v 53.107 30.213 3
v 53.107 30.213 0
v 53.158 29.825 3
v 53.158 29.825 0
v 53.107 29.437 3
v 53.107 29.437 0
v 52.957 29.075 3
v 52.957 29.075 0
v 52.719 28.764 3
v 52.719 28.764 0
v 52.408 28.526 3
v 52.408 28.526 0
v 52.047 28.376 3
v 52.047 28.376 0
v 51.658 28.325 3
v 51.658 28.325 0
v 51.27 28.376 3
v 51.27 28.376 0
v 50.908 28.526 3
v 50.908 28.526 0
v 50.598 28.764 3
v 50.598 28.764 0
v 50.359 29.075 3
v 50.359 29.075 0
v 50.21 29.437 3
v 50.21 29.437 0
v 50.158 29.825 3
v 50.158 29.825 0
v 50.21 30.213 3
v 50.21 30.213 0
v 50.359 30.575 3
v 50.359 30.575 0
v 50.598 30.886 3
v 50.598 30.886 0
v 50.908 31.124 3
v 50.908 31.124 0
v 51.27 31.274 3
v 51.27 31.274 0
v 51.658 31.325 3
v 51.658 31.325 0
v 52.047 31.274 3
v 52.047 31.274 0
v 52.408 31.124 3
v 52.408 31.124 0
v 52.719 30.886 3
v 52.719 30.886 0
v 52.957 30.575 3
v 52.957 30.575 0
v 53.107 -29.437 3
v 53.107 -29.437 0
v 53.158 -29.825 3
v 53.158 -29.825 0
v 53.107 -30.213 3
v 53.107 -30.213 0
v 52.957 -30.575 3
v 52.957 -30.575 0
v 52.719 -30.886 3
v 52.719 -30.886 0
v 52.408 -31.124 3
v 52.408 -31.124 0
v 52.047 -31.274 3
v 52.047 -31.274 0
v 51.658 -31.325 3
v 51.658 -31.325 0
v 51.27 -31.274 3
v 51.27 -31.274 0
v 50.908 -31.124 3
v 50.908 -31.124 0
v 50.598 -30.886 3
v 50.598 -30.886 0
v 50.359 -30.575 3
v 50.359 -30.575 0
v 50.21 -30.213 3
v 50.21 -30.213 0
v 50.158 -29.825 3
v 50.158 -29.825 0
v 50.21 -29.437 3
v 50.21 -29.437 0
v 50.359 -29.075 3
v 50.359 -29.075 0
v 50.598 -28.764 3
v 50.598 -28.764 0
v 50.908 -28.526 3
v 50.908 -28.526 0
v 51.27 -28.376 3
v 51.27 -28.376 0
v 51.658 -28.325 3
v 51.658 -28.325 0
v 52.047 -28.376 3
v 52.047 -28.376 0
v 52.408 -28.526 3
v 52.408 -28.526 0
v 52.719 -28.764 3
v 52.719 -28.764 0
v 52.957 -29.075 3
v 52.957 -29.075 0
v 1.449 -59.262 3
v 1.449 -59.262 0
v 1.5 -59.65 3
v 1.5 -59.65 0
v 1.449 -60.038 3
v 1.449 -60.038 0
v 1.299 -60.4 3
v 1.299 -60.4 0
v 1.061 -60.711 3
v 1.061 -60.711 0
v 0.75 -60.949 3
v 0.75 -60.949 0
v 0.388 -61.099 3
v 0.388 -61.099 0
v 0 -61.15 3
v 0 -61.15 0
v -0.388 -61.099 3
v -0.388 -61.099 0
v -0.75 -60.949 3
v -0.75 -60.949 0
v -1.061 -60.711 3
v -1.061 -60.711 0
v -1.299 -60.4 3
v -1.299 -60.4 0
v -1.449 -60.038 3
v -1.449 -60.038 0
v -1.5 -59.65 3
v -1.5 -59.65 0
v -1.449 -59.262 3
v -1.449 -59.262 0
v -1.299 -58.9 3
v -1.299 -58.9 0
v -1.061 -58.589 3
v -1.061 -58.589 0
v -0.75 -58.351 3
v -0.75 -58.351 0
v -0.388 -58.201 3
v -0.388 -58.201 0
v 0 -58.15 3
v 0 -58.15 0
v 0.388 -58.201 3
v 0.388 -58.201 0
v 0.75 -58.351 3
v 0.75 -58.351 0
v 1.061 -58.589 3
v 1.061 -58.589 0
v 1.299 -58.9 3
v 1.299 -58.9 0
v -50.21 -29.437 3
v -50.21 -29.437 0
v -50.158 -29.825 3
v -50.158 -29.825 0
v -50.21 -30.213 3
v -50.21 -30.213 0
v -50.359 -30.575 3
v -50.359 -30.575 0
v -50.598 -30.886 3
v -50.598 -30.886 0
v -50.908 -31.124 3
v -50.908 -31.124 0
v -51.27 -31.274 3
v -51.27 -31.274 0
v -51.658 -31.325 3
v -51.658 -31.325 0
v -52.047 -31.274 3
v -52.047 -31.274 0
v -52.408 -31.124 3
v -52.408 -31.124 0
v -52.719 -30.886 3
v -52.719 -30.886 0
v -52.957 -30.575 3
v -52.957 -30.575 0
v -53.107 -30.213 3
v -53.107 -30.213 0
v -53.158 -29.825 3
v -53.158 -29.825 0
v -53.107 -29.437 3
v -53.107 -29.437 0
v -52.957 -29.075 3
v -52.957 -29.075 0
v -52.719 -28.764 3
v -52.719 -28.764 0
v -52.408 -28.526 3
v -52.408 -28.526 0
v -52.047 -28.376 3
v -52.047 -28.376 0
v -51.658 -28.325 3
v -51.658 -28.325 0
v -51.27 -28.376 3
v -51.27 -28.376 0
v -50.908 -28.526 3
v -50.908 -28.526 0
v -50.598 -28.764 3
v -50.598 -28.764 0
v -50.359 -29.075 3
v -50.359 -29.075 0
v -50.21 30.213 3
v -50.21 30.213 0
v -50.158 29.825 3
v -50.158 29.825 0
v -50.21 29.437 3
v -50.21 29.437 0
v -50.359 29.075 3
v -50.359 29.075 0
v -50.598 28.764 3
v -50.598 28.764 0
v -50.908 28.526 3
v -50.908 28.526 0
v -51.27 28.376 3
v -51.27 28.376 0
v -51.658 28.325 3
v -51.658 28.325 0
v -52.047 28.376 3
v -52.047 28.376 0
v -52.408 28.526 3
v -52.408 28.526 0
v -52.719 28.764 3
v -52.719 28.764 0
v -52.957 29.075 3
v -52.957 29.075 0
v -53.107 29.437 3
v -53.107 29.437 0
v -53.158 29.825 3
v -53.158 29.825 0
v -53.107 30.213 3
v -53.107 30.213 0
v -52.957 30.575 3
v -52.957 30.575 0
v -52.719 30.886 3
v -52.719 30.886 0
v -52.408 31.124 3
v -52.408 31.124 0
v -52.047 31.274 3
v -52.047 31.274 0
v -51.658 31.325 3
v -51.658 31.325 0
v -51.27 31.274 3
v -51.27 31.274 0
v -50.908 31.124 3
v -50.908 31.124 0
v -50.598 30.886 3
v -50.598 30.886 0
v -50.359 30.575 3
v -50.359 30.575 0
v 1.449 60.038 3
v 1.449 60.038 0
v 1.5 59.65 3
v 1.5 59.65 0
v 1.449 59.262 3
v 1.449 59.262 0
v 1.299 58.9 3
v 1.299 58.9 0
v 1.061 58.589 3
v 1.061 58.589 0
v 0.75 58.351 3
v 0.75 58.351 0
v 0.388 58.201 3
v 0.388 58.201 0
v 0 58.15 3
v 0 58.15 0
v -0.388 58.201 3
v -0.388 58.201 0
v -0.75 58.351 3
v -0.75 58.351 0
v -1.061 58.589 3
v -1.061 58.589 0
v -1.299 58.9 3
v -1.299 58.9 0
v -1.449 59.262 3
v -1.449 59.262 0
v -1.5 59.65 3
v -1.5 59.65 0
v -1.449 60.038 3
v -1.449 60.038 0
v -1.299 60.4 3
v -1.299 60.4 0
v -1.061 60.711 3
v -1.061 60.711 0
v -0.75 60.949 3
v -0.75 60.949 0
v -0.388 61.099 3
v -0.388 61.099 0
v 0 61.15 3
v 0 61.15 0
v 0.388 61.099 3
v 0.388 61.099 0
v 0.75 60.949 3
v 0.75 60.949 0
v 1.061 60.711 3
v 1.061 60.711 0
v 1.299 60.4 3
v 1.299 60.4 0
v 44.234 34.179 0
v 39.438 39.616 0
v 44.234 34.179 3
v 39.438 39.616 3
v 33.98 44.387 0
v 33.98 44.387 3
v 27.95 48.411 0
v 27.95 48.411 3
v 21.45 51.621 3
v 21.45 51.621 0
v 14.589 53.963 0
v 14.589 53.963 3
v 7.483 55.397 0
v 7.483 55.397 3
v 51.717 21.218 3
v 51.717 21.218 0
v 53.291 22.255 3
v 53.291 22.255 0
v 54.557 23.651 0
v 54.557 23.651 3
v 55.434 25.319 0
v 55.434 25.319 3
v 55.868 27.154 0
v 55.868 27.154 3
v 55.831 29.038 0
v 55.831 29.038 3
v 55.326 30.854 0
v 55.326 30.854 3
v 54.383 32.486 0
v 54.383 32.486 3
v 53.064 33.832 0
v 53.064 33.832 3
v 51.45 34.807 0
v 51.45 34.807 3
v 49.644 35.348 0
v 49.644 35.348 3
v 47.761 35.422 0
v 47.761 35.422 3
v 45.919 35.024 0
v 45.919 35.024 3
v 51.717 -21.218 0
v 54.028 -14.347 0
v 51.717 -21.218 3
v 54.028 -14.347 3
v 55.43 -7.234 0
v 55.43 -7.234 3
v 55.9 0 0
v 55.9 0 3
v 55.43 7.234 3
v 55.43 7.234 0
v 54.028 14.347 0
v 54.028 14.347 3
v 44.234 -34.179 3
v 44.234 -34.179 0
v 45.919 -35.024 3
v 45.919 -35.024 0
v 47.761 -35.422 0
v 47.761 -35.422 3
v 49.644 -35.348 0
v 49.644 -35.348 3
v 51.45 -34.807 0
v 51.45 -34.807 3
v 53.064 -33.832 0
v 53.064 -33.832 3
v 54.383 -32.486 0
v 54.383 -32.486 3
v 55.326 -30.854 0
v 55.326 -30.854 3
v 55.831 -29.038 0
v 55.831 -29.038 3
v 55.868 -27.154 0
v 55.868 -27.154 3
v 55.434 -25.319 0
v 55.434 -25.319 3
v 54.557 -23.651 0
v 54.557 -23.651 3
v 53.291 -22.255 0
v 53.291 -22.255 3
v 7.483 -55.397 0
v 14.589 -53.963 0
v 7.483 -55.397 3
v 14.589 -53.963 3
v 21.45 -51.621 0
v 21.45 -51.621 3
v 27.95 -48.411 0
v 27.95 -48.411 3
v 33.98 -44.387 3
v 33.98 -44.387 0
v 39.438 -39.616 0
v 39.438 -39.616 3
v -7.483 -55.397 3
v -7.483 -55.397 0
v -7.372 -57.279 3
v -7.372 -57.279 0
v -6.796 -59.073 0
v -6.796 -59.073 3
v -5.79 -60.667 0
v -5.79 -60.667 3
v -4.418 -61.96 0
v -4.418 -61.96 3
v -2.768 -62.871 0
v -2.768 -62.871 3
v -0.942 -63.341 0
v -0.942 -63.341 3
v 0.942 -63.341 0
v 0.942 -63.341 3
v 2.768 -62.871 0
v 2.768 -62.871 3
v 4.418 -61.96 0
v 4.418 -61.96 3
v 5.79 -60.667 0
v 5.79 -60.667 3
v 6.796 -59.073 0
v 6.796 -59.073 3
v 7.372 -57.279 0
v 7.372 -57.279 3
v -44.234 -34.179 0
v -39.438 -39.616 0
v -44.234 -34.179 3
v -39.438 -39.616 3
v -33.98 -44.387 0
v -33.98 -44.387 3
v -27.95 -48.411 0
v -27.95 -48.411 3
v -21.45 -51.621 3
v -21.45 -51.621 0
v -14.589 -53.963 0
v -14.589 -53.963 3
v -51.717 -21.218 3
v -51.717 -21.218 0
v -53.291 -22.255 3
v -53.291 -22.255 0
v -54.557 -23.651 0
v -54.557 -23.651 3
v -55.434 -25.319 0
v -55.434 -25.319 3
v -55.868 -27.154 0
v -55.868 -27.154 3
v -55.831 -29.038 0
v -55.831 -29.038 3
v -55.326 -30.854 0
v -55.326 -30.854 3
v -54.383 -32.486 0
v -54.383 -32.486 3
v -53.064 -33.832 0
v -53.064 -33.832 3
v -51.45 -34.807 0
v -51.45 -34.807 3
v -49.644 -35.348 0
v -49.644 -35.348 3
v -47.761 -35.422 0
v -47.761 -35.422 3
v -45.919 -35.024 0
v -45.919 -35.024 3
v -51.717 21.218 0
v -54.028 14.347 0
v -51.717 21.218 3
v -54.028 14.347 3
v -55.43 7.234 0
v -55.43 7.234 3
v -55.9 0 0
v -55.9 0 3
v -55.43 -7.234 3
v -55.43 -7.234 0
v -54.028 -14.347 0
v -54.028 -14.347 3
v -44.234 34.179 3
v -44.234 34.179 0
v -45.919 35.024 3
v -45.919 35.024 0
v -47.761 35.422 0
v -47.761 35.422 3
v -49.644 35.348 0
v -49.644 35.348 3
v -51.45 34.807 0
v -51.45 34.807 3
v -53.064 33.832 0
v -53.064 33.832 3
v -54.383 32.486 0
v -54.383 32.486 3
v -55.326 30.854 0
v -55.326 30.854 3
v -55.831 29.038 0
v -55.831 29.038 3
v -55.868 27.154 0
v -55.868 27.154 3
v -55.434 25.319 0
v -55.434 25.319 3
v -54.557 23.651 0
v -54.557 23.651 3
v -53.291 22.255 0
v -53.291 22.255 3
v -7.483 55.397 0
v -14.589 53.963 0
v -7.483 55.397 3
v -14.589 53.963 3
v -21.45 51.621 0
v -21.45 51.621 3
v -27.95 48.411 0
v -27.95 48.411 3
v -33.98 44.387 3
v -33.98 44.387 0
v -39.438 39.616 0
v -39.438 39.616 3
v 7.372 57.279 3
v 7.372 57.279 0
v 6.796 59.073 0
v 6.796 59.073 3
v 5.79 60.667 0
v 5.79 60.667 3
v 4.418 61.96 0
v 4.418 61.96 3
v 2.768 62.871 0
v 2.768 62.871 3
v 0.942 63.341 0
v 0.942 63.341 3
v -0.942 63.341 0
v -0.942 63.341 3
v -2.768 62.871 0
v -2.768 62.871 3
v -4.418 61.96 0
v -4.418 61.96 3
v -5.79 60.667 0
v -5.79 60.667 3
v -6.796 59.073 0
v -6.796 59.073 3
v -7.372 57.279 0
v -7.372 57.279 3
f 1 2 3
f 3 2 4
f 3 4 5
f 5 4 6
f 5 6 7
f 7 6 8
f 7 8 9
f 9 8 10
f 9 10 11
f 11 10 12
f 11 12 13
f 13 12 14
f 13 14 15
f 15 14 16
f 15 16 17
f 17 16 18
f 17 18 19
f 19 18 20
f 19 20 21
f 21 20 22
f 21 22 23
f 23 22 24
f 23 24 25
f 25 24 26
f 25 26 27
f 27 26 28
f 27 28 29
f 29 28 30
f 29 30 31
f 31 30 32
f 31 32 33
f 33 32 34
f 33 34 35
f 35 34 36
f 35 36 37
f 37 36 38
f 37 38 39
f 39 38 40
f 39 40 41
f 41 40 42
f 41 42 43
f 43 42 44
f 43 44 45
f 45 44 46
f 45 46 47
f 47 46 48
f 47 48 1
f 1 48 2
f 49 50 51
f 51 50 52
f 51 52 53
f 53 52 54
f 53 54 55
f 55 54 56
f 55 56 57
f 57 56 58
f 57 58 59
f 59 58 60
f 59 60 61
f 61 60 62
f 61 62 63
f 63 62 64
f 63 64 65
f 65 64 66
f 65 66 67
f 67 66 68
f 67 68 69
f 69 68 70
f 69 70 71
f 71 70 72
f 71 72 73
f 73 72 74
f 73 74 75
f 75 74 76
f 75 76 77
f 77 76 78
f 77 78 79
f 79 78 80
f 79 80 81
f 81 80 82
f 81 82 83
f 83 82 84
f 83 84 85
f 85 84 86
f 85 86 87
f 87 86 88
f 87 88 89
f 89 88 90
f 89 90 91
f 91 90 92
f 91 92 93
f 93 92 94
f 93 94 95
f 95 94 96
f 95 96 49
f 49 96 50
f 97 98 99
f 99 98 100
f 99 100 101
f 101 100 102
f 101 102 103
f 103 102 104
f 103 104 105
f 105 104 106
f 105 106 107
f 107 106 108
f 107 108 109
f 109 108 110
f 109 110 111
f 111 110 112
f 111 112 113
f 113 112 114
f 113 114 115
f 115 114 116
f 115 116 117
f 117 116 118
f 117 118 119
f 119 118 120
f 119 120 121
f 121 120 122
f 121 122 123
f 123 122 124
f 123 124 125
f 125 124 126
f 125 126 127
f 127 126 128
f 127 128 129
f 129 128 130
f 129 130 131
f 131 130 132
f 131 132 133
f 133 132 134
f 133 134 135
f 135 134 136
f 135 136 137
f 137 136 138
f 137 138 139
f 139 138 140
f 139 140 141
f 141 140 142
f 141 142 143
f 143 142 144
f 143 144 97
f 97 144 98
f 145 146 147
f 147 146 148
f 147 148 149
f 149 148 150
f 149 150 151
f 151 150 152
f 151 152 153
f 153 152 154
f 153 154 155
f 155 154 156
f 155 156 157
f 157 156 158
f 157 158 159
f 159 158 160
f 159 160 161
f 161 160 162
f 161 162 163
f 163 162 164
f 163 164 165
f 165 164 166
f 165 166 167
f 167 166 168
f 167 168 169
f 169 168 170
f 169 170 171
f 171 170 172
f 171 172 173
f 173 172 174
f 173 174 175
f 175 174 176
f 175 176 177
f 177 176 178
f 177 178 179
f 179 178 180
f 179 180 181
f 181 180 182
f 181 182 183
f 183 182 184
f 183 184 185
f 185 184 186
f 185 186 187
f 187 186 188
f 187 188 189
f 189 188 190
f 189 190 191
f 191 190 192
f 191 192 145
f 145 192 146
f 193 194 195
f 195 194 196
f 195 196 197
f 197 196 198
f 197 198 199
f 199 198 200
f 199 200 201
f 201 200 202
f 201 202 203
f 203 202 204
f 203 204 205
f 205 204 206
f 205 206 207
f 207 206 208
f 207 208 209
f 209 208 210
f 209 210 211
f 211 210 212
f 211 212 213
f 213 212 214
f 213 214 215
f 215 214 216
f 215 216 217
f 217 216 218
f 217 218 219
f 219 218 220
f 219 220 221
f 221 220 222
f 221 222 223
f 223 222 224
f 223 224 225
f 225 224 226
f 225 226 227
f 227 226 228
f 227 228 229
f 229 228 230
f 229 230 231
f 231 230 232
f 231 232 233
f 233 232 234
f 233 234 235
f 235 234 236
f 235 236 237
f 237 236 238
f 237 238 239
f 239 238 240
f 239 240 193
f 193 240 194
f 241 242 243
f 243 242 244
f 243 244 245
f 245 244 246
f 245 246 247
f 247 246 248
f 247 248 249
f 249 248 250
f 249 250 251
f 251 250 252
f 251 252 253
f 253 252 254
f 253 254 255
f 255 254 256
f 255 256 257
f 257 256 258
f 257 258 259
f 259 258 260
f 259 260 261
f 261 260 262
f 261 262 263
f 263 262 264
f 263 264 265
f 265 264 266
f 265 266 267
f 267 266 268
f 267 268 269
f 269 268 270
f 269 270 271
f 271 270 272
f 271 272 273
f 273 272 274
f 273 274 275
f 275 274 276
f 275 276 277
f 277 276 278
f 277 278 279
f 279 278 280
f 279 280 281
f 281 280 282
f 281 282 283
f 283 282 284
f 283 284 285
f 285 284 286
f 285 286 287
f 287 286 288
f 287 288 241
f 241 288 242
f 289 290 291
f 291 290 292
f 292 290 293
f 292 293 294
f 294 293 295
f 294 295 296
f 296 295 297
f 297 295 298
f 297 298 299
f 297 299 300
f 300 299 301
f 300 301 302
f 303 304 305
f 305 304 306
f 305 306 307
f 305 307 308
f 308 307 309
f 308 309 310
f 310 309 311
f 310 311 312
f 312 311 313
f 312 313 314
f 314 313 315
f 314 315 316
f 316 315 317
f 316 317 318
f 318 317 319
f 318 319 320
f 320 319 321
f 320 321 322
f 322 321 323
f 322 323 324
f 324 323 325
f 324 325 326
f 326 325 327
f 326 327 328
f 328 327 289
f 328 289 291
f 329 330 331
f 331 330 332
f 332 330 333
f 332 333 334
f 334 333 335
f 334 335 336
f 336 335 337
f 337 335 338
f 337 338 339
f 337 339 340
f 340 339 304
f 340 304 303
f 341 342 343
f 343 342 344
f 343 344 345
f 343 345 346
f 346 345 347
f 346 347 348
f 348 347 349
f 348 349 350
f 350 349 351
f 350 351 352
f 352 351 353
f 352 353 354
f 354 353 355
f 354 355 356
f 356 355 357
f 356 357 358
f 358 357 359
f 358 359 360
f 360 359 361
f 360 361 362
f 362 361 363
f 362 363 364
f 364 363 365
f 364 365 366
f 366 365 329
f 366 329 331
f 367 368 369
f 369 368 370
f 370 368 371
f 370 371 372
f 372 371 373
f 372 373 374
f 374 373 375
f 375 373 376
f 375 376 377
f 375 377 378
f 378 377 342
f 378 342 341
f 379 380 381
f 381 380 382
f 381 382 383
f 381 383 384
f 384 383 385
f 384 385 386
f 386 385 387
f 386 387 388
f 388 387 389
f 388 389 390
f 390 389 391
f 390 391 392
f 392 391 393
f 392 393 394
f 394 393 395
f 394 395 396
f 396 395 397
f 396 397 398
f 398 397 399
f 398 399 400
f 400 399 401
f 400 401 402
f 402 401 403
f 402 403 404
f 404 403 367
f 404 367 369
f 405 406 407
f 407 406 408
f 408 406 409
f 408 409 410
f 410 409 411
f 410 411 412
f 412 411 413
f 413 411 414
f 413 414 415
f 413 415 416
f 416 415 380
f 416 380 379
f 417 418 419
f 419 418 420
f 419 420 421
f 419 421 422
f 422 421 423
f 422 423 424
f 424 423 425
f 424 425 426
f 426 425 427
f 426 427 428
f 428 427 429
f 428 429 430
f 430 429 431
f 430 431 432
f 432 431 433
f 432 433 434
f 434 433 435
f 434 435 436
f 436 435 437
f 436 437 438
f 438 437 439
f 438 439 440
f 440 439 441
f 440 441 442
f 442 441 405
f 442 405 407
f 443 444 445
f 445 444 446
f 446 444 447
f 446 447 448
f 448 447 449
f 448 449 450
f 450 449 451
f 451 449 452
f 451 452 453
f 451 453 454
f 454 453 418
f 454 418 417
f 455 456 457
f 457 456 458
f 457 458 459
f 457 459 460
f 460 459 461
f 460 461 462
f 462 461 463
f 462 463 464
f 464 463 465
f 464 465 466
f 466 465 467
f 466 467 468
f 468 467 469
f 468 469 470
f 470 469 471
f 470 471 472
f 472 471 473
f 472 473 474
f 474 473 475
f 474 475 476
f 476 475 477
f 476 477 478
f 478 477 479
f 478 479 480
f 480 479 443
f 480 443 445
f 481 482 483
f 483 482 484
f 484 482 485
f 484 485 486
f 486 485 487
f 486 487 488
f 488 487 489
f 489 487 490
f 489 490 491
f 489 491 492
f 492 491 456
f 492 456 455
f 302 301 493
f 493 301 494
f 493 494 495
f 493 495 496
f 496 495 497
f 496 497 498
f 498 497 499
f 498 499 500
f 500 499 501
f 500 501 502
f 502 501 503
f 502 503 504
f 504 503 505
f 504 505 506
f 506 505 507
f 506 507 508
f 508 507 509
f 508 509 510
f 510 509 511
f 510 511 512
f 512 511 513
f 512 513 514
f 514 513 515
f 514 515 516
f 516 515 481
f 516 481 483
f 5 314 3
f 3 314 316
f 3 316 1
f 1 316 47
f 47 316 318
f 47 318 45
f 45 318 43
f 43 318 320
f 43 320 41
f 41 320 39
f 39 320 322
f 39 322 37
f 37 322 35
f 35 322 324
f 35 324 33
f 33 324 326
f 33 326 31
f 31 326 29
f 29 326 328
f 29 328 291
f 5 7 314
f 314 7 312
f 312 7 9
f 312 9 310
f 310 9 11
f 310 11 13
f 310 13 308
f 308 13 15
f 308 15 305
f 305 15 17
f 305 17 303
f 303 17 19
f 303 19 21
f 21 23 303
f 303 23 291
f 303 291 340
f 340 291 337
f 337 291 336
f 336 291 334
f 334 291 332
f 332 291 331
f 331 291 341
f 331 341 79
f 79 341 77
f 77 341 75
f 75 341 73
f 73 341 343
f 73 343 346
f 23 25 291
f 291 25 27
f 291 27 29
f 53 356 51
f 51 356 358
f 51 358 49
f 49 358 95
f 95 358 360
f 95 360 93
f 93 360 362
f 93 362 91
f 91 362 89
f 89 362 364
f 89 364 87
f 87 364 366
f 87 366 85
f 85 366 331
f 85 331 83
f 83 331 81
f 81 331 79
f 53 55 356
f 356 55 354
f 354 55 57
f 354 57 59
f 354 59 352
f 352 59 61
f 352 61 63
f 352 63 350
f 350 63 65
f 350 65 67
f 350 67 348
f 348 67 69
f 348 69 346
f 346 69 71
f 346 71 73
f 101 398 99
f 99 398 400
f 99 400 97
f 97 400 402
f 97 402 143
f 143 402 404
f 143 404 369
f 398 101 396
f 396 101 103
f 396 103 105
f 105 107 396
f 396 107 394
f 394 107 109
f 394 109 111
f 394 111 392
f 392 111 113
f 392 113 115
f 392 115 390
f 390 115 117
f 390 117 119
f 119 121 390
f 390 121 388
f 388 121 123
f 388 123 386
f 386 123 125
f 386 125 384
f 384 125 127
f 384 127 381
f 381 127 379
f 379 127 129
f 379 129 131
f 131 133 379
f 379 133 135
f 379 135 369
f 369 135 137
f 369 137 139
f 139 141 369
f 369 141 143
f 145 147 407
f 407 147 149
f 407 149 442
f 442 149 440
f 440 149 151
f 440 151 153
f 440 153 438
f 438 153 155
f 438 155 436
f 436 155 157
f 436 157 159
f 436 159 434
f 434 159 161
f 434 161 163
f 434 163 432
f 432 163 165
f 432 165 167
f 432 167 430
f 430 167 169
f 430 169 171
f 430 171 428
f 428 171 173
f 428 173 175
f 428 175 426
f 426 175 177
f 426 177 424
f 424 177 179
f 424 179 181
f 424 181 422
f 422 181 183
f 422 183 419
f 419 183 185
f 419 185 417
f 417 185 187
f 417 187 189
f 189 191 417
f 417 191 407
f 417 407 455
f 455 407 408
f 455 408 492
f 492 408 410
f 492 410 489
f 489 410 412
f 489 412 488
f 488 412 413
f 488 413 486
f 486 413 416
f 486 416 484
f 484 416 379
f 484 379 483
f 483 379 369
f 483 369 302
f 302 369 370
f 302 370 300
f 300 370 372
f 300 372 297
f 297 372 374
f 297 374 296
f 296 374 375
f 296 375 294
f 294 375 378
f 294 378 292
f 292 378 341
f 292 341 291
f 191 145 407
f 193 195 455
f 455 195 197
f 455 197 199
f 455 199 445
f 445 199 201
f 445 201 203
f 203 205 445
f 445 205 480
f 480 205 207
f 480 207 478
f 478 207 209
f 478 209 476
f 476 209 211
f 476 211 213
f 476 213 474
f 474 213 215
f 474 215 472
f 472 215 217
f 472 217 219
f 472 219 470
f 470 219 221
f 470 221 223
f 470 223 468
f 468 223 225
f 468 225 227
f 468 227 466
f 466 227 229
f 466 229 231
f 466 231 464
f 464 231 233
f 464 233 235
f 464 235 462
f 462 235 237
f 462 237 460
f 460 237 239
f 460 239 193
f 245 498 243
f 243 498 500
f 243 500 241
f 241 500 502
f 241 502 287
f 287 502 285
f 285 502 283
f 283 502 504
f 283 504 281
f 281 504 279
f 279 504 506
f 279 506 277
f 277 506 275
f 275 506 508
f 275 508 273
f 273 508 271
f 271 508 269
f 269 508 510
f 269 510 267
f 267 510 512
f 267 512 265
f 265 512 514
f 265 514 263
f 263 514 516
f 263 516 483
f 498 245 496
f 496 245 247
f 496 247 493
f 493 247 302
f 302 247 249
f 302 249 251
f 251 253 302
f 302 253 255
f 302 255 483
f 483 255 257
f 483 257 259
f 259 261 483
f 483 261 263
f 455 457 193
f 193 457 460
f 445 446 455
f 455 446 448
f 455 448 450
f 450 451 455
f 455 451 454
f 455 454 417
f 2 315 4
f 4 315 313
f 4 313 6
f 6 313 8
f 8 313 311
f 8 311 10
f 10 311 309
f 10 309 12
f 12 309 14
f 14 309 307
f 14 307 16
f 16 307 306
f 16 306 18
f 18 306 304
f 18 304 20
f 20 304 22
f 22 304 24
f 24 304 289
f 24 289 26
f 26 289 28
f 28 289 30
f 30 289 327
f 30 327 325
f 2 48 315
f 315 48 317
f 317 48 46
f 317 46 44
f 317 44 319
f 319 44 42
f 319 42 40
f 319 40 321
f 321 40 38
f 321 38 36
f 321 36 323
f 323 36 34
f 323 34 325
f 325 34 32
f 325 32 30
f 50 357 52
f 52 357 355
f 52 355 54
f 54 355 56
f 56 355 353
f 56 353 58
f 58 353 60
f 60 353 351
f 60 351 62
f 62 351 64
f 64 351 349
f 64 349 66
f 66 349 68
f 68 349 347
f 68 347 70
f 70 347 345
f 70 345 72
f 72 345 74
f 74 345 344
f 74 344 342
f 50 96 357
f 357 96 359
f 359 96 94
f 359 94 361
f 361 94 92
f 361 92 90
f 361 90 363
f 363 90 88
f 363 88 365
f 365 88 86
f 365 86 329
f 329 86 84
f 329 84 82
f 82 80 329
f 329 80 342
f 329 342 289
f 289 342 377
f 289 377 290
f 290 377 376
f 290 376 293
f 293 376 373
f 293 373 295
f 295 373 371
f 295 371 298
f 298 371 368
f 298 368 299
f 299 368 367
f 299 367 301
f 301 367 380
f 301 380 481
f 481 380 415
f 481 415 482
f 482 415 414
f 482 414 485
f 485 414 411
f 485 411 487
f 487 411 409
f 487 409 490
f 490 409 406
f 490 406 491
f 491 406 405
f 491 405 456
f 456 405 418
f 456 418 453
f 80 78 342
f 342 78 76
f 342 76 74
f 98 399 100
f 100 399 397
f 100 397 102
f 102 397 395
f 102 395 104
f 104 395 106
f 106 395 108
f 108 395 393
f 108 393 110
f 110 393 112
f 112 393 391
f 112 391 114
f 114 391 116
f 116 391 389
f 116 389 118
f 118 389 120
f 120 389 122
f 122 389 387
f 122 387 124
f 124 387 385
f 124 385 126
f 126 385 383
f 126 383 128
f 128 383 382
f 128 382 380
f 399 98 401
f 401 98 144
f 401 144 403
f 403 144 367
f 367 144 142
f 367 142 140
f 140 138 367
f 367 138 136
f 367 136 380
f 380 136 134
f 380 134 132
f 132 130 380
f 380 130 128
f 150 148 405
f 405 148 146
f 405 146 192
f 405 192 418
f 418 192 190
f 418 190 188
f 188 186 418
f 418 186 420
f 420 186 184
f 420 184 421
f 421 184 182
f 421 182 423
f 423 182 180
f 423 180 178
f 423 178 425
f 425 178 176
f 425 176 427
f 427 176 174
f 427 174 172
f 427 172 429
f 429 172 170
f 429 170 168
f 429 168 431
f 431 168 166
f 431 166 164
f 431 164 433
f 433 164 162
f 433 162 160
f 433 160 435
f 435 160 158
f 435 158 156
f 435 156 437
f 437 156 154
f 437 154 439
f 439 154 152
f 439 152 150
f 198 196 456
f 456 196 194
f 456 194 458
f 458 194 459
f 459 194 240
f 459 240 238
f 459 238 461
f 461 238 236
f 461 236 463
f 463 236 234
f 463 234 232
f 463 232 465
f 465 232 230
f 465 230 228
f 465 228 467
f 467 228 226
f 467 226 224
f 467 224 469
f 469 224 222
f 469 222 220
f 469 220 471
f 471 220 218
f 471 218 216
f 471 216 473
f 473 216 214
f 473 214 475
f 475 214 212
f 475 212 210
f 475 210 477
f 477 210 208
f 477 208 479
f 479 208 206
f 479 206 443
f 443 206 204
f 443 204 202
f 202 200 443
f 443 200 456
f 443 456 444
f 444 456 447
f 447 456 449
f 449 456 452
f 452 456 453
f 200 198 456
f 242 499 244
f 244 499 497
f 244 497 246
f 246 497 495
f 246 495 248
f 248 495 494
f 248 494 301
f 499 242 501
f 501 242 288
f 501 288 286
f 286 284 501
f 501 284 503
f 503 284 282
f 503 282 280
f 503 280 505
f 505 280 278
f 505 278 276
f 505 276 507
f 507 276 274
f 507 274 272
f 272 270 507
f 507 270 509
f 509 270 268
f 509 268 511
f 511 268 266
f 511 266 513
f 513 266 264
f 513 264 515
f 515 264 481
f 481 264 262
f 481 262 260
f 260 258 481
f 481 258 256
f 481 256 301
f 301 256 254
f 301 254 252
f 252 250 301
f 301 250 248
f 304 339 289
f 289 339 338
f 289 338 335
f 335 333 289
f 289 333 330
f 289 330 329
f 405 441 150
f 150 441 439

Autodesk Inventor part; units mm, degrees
ref_plane "YZ Plane" through (0, 0, 0) normal (1, 0, 0) x (0, 1, 0)
ref_plane "XZ Plane" through (0, 0, 0) normal (0, 1, 0) x (-1, 0, 0)
ref_plane "XY Plane" through (0, 0, 0) normal (0, 0, 1) x (1, 0, 0)
sketch "Sketch2" plane through (0, 0, 0) normal (0, 0, 1) x (1, 0, 0)
  arc A0 (7.4831, 55.3969) -> (-7.4831, 55.3969) centre (0, 55.9) ccw
  circle A1 centre (0, 59.65) radius 1.5
  arc A2 (-44.2335, 34.179) -> (-51.7166, 21.2179) centre (-48.4108, 27.95) ccw
  circle A3 centre (-51.6584, 29.825) radius 1.5
  arc A4 (-51.7166, -21.2179) -> (-44.2335, -34.179) centre (-48.4108, -27.95) ccw
  circle A5 centre (-51.6584, -29.825) radius 1.5
  arc A6 (-7.4831, -55.3969) -> (7.4831, -55.3969) centre (0, -55.9) ccw
  circle A7 centre (0, -59.65) radius 1.5
  arc A8 (44.2335, -34.179) -> (51.7166, -21.2179) centre (48.4108, -27.95) ccw
  circle A9 centre (51.6584, -29.825) radius 1.5
  arc A10 (51.7166, 21.2179) -> (44.2335, 34.179) centre (48.4108, 27.95) ccw
  circle A11 centre (51.6584, 29.825) radius 1.5
  arc A12 (-7.4831, 55.3969) -> (-44.2335, 34.179) centre (0, 0) ccw
  arc A13 (-51.7166, 21.2179) -> (-51.7166, -21.2179) centre (0, 0) ccw
  arc A14 (-44.2335, -34.179) -> (-7.4831, -55.3969) centre (0, 0) ccw
  arc A15 (7.4831, -55.3969) -> (44.2335, -34.179) centre (0, 0) ccw
  arc A16 (51.7166, -21.2179) -> (51.7166, 21.2179) centre (0, 0) ccw
  arc A17 (44.2335, 34.179) -> (7.4831, 55.3969) centre (0, 0) ccw
  dimension "d12" = 3
  dimension "d15" = 360
  dimension "d20" = 55.9
extrude "Extrusion1" add sketch "Sketch2" along normal blind 3
properties part number "base_plate"
